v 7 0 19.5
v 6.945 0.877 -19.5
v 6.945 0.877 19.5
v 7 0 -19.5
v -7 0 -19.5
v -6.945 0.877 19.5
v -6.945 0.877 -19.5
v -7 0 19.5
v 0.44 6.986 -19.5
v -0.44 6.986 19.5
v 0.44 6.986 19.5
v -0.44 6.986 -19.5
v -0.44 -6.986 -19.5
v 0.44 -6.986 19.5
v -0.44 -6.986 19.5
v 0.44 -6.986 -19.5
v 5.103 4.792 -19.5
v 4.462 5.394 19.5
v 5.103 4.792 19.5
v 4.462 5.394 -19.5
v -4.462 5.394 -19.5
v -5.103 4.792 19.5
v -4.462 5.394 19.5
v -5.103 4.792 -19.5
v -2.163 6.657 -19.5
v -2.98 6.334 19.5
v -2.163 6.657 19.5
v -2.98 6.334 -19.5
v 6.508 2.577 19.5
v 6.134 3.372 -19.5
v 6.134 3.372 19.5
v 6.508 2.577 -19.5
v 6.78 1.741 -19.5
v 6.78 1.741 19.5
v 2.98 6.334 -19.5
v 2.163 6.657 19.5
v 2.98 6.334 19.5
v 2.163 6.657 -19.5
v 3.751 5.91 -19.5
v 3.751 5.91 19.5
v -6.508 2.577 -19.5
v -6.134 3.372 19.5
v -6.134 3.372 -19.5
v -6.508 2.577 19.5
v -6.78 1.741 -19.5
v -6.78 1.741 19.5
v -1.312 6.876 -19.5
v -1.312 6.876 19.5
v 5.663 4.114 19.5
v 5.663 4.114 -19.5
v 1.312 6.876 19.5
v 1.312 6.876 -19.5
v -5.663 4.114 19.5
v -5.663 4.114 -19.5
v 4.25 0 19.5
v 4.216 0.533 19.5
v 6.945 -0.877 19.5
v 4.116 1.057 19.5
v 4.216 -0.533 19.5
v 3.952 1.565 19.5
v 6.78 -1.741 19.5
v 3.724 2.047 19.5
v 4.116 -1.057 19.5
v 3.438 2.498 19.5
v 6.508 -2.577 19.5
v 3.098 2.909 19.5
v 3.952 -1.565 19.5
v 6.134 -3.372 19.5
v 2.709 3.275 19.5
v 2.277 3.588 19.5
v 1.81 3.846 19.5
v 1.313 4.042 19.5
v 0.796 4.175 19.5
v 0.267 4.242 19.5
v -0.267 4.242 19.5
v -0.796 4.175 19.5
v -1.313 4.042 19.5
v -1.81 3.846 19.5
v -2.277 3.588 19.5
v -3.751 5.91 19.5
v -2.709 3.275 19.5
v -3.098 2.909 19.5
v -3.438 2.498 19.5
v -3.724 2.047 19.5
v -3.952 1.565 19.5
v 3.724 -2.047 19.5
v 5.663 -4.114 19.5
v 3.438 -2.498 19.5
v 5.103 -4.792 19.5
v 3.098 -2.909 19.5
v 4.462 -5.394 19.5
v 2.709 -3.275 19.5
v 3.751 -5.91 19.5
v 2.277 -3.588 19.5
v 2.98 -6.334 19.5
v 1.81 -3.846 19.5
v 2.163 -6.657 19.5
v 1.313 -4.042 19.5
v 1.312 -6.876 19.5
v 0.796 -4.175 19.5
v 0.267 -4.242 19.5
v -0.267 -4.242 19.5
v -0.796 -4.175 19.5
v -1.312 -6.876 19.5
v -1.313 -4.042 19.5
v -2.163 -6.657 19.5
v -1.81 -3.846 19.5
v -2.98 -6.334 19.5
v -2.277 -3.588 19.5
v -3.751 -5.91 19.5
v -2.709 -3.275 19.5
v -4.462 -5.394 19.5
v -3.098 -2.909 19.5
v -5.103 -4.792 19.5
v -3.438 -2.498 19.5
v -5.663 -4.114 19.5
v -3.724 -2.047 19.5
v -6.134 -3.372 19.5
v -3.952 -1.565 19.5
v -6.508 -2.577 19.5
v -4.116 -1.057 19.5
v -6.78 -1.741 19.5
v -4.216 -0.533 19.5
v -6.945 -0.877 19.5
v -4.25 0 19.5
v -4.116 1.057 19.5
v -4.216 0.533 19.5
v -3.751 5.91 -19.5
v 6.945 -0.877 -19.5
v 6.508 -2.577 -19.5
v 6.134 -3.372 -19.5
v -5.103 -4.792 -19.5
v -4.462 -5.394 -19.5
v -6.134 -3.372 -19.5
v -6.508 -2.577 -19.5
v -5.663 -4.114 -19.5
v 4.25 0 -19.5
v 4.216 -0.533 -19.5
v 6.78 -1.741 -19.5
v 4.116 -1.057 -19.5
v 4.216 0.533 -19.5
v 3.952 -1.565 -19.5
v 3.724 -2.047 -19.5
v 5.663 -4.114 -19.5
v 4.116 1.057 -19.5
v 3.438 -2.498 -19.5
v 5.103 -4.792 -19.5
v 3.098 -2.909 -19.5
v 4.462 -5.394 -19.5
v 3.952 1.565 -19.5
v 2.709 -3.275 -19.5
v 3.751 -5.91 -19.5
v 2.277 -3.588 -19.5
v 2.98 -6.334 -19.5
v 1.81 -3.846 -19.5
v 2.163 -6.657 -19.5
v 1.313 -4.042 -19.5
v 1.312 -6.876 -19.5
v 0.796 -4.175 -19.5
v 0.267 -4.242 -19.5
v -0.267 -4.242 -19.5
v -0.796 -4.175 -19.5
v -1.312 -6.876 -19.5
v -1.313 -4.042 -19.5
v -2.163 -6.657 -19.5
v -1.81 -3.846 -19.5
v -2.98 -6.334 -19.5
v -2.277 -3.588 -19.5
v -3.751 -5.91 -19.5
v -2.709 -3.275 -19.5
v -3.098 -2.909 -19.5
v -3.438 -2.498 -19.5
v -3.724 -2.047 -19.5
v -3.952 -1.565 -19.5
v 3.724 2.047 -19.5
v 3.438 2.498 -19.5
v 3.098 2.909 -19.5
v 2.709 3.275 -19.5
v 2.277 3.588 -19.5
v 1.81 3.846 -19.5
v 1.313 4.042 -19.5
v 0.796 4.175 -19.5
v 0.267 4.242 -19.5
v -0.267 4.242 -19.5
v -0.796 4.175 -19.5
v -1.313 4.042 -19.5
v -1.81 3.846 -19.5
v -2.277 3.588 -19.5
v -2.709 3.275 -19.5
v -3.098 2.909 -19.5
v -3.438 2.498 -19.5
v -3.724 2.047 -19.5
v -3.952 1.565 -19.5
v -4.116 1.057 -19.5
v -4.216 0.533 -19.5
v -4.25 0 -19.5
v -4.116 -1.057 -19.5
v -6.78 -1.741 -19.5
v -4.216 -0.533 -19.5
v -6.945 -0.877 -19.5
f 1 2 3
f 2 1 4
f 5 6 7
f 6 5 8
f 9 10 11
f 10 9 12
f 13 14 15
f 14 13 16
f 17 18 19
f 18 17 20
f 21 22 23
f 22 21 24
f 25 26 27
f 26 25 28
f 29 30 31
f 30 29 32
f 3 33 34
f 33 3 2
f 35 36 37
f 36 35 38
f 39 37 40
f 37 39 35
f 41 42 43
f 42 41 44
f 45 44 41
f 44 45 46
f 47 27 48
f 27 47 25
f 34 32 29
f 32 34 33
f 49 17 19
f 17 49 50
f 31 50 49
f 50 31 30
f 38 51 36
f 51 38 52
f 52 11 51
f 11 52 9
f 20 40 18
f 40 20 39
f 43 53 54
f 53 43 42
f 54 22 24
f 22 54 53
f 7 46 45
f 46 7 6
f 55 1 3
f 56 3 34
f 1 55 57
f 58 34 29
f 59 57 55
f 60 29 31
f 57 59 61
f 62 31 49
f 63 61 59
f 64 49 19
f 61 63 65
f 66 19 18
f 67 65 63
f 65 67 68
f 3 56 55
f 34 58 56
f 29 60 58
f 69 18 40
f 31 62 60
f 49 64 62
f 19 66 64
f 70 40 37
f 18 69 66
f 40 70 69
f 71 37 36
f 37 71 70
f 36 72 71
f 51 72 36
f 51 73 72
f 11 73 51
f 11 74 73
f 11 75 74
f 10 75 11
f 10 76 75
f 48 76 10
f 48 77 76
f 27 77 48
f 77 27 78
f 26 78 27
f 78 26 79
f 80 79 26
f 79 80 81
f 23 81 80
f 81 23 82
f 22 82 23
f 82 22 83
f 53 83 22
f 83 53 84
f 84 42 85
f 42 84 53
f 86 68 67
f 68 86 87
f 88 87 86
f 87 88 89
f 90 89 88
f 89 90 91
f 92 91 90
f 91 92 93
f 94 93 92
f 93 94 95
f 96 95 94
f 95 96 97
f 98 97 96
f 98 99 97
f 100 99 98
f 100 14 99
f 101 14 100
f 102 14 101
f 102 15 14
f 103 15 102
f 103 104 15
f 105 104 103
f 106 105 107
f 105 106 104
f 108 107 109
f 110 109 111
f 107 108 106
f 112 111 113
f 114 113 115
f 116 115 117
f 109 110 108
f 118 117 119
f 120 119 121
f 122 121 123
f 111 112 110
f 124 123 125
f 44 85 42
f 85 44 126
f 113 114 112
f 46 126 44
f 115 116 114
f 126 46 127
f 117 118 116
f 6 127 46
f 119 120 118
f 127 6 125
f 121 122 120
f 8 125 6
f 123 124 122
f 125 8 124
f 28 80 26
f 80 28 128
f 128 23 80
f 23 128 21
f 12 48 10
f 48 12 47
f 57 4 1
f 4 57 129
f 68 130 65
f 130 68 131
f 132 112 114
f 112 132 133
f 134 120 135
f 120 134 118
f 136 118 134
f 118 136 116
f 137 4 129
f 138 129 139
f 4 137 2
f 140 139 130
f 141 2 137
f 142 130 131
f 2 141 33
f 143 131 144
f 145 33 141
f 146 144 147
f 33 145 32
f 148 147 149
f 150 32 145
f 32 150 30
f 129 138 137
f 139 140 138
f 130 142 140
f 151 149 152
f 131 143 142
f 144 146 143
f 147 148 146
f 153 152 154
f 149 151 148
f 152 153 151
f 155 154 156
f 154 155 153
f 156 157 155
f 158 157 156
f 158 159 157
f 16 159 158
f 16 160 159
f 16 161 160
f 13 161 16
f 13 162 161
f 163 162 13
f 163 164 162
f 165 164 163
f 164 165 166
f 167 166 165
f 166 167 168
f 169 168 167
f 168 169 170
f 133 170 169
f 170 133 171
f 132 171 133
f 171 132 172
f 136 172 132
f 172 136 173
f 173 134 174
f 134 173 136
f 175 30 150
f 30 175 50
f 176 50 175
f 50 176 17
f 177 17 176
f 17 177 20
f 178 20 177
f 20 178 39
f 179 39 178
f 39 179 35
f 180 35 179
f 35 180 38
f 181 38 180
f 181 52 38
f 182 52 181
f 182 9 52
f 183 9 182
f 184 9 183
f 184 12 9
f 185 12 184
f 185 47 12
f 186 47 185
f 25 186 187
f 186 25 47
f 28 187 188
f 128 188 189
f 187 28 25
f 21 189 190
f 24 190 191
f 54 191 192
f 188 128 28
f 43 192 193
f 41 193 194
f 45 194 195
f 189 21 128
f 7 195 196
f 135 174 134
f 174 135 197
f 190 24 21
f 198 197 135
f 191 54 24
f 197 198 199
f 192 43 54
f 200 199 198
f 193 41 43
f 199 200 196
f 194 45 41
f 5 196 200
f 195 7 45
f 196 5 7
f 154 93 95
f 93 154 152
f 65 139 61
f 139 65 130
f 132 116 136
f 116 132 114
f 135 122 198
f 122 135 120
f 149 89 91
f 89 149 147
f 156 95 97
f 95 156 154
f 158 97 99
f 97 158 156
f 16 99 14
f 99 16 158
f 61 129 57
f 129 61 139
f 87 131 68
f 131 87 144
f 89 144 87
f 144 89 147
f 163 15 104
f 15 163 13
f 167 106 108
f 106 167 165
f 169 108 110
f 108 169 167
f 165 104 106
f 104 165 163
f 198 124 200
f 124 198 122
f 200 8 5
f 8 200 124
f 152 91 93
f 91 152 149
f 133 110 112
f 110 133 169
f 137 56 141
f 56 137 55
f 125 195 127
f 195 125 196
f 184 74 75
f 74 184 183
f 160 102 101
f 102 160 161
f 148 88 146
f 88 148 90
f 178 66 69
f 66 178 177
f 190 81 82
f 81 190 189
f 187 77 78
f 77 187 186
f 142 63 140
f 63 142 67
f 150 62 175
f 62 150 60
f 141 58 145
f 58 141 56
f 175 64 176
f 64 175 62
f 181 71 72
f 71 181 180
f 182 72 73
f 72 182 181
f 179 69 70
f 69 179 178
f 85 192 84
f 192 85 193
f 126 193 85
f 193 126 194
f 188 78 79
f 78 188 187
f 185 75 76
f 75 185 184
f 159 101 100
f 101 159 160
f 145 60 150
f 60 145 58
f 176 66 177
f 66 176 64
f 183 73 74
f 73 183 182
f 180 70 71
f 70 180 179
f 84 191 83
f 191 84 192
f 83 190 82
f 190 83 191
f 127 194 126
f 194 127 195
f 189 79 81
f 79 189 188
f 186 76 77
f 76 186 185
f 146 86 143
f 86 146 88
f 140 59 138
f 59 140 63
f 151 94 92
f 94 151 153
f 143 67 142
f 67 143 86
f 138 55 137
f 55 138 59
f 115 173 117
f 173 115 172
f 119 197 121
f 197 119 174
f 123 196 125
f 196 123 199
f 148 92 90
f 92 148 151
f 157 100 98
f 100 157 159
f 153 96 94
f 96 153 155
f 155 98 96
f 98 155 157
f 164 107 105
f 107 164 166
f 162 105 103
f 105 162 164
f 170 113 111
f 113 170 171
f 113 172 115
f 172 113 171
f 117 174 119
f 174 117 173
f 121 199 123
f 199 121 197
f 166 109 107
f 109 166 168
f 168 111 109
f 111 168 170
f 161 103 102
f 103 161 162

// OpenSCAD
$fn = 50;


difference() {
	union() {
		translate(v = [0, 0, -19.5000000000]) {
			cylinder(h = 39, r = 7.0000000000);
		}
	}
	union() {
		translate(v = [0, 0, -100.0000000000]) {
			cylinder(h = 200, r = 4.2500000000);
		}
	}
}
